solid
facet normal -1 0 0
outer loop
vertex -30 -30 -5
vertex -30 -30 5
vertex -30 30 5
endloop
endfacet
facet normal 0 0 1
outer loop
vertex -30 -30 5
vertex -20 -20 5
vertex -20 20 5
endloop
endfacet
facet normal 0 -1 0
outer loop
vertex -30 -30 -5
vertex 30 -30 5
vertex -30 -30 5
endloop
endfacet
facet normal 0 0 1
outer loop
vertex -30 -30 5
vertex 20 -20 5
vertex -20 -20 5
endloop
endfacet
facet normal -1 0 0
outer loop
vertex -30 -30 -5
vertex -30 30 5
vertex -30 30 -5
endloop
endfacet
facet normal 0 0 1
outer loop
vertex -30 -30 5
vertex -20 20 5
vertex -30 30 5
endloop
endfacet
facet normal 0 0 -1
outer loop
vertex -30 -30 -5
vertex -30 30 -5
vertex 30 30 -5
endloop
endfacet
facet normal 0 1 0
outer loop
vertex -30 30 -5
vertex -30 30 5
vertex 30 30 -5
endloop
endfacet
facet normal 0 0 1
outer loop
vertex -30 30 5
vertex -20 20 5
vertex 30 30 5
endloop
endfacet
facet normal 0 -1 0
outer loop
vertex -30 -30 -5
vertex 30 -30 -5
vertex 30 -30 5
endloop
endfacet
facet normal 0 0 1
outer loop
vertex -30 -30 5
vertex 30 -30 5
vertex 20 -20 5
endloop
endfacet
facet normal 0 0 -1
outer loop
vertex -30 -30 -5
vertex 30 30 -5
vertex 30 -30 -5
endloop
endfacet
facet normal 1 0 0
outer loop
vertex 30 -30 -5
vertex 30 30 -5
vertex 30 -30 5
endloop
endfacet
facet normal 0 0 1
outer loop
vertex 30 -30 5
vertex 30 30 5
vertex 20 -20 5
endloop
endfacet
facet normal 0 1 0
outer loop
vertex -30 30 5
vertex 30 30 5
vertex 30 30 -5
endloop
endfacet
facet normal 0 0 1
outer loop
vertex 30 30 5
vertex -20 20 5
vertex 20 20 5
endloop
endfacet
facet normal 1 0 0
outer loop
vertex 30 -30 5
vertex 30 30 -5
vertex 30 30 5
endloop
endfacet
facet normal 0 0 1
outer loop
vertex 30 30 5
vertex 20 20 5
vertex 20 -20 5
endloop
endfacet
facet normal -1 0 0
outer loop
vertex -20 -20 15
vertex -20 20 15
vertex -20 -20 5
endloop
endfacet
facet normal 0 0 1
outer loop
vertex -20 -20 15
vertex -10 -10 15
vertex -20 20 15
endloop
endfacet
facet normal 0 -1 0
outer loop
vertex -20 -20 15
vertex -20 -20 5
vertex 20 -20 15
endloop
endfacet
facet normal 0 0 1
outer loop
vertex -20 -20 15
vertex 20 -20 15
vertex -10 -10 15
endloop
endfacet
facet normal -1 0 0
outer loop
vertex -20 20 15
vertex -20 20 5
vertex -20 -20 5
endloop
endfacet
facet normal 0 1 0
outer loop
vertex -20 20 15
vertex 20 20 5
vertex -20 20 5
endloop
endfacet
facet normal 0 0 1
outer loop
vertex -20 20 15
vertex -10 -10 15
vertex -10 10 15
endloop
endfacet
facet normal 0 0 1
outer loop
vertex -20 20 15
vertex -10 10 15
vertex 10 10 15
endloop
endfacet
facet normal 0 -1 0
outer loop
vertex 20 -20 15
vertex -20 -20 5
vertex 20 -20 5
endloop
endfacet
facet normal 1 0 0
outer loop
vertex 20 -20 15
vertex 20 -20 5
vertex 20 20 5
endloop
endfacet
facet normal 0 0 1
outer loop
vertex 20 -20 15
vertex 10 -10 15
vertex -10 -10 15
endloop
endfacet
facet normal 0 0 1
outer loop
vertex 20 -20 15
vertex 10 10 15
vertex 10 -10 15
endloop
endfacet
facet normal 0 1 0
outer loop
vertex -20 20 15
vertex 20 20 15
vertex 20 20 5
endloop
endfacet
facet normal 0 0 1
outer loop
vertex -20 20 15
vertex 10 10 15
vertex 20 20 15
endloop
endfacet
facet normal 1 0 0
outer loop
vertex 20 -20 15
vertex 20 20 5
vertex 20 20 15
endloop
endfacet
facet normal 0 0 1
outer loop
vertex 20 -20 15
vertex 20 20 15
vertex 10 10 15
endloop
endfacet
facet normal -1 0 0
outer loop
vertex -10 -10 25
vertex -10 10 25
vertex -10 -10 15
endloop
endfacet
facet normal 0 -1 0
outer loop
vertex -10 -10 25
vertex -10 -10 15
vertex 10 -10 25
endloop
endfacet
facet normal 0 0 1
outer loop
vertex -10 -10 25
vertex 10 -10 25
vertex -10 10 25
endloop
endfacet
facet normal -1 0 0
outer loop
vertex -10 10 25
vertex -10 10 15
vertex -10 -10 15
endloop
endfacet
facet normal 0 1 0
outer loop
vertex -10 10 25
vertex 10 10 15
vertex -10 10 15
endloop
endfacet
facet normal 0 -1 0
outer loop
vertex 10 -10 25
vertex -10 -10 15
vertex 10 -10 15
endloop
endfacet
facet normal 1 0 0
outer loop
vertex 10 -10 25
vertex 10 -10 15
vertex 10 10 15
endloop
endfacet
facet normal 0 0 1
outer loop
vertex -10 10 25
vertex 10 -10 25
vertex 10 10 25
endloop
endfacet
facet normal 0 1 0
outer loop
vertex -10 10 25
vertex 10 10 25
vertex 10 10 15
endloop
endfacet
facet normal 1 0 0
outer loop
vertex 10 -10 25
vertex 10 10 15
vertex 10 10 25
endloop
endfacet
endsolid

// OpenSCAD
// 3段の階段状ピラミッド

// 各段のパラメータ [幅, 奥行き, 高さ]
stages = [
    [60, 60, 10],  // 1段目（底）
    [40, 40, 10],  // 2段目
    [20, 20, 10]   // 3段目（頂上）
];

// 各段を中心を揃えて積み上げる
for (i = [0 : len(stages) - 1]) {
    z_offset = i * 10;  // 各段の高さは10mm
    translate([0, 0, z_offset])
        cube([stages[i][0], stages[i][1], stages[i][2]], center=true);
}
